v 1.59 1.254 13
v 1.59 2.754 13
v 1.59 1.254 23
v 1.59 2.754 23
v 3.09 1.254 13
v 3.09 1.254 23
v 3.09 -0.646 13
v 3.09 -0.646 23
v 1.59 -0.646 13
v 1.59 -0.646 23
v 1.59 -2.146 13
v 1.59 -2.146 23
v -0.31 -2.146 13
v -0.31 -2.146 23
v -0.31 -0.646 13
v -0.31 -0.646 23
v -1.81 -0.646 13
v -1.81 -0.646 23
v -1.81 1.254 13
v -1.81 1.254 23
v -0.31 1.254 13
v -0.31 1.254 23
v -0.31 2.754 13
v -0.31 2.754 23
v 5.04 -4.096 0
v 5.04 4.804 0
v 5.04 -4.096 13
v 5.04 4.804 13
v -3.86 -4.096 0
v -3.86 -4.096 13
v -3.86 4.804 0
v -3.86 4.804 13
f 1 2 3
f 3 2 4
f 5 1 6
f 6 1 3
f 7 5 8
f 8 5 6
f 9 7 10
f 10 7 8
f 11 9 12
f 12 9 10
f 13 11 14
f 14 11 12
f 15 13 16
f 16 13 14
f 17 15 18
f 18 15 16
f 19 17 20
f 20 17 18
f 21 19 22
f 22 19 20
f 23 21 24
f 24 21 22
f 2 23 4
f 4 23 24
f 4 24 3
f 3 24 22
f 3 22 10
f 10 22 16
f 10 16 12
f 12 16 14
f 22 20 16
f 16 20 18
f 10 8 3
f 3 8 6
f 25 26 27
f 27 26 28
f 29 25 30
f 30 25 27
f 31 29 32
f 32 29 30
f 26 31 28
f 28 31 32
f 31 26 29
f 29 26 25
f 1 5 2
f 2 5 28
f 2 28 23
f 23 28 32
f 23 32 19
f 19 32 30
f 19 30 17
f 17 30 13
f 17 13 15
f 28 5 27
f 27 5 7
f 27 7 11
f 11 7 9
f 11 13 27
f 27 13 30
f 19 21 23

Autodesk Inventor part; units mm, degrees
ref_plane "YZ Plane" through (0, 0, 0) normal (1, 0, 0) x (0, 1, 0)
ref_plane "XZ Plane" through (0, 0, 0) normal (0, 1, 0) x (-1, 0, 0)
ref_plane "XY Plane" through (0, 0, 0) normal (0, 0, 1) x (1, 0, 0)
sketch "Sketch1" plane through (0, 0, 0) normal (0, 0, 1) x (1, 0, 0)
  line L0 (-3.8602, 4.8039) -> (5.0398, 4.8039)
  line L1 (5.0398, 4.8039) -> (5.0398, -4.0961)
  line L2 (5.0398, -4.0961) -> (-3.8602, -4.0961)
  line L3 (-3.8602, -4.0961) -> (-3.8602, 4.8039)
  point P0 (0, 0)
  dimension "d0" = 8.9
  dimension "d1" = 8.9
extrude "Extrusion1" add sketch "Sketch1" along normal blind 13
sketch "Sketch2" plane through (0, 0, 13) normal (0, 0, 1) x (1, 0, 0)
  line L0 (-0.3102, 2.7539) -> (1.5898, 2.7539)
  line L1 (1.5898, -2.1461) -> (-0.3102, -2.1461)
  line L2 (3.0898, 1.2539) -> (3.0898, -0.6461)
  line L3 (-1.8102, -0.6461) -> (-1.8102, 1.2539)
  line L4 (-3.8602, 4.8039) -> (5.0398, 4.8039) projected
  line L5 (-3.8602, -4.0961) -> (-3.8602, 4.8039) projected
  line L6 (5.0398, 4.8039) -> (5.0398, -4.0961) projected
  line L7 (-3.8602, -4.0961) -> (5.0398, -4.0961) projected
  line L8 (-1.8102, 1.2539) -> (-0.3102, 1.2539)
  line L9 (1.5898, 1.2539) -> (3.0898, 1.2539)
  line L10 (-0.3102, -2.1461) -> (-0.3102, -0.6461)
  line L11 (-0.3102, 1.2539) -> (-0.3102, 2.7539)
  line L12 (3.0898, -0.6461) -> (1.5898, -0.6461)
  line L13 (-0.3102, -0.6461) -> (-1.8102, -0.6461)
  line L14 (1.5898, 2.7539) -> (1.5898, 1.2539)
  line L15 (1.5898, -0.6461) -> (1.5898, -2.1461)
  point P0 (0, 0)
  dimension "d4" = 1.9
  dimension "d5" = 1.9
  dimension "d6" = 4.9
  dimension "d7" = 4.9
extrude "Extrusion2" add sketch "Sketch2" along normal blind 10 contours L0 L14 L9 L2 L12 L15 L1 L10 L13 L3 L8 L11
properties part number "ClutchAdapter"
